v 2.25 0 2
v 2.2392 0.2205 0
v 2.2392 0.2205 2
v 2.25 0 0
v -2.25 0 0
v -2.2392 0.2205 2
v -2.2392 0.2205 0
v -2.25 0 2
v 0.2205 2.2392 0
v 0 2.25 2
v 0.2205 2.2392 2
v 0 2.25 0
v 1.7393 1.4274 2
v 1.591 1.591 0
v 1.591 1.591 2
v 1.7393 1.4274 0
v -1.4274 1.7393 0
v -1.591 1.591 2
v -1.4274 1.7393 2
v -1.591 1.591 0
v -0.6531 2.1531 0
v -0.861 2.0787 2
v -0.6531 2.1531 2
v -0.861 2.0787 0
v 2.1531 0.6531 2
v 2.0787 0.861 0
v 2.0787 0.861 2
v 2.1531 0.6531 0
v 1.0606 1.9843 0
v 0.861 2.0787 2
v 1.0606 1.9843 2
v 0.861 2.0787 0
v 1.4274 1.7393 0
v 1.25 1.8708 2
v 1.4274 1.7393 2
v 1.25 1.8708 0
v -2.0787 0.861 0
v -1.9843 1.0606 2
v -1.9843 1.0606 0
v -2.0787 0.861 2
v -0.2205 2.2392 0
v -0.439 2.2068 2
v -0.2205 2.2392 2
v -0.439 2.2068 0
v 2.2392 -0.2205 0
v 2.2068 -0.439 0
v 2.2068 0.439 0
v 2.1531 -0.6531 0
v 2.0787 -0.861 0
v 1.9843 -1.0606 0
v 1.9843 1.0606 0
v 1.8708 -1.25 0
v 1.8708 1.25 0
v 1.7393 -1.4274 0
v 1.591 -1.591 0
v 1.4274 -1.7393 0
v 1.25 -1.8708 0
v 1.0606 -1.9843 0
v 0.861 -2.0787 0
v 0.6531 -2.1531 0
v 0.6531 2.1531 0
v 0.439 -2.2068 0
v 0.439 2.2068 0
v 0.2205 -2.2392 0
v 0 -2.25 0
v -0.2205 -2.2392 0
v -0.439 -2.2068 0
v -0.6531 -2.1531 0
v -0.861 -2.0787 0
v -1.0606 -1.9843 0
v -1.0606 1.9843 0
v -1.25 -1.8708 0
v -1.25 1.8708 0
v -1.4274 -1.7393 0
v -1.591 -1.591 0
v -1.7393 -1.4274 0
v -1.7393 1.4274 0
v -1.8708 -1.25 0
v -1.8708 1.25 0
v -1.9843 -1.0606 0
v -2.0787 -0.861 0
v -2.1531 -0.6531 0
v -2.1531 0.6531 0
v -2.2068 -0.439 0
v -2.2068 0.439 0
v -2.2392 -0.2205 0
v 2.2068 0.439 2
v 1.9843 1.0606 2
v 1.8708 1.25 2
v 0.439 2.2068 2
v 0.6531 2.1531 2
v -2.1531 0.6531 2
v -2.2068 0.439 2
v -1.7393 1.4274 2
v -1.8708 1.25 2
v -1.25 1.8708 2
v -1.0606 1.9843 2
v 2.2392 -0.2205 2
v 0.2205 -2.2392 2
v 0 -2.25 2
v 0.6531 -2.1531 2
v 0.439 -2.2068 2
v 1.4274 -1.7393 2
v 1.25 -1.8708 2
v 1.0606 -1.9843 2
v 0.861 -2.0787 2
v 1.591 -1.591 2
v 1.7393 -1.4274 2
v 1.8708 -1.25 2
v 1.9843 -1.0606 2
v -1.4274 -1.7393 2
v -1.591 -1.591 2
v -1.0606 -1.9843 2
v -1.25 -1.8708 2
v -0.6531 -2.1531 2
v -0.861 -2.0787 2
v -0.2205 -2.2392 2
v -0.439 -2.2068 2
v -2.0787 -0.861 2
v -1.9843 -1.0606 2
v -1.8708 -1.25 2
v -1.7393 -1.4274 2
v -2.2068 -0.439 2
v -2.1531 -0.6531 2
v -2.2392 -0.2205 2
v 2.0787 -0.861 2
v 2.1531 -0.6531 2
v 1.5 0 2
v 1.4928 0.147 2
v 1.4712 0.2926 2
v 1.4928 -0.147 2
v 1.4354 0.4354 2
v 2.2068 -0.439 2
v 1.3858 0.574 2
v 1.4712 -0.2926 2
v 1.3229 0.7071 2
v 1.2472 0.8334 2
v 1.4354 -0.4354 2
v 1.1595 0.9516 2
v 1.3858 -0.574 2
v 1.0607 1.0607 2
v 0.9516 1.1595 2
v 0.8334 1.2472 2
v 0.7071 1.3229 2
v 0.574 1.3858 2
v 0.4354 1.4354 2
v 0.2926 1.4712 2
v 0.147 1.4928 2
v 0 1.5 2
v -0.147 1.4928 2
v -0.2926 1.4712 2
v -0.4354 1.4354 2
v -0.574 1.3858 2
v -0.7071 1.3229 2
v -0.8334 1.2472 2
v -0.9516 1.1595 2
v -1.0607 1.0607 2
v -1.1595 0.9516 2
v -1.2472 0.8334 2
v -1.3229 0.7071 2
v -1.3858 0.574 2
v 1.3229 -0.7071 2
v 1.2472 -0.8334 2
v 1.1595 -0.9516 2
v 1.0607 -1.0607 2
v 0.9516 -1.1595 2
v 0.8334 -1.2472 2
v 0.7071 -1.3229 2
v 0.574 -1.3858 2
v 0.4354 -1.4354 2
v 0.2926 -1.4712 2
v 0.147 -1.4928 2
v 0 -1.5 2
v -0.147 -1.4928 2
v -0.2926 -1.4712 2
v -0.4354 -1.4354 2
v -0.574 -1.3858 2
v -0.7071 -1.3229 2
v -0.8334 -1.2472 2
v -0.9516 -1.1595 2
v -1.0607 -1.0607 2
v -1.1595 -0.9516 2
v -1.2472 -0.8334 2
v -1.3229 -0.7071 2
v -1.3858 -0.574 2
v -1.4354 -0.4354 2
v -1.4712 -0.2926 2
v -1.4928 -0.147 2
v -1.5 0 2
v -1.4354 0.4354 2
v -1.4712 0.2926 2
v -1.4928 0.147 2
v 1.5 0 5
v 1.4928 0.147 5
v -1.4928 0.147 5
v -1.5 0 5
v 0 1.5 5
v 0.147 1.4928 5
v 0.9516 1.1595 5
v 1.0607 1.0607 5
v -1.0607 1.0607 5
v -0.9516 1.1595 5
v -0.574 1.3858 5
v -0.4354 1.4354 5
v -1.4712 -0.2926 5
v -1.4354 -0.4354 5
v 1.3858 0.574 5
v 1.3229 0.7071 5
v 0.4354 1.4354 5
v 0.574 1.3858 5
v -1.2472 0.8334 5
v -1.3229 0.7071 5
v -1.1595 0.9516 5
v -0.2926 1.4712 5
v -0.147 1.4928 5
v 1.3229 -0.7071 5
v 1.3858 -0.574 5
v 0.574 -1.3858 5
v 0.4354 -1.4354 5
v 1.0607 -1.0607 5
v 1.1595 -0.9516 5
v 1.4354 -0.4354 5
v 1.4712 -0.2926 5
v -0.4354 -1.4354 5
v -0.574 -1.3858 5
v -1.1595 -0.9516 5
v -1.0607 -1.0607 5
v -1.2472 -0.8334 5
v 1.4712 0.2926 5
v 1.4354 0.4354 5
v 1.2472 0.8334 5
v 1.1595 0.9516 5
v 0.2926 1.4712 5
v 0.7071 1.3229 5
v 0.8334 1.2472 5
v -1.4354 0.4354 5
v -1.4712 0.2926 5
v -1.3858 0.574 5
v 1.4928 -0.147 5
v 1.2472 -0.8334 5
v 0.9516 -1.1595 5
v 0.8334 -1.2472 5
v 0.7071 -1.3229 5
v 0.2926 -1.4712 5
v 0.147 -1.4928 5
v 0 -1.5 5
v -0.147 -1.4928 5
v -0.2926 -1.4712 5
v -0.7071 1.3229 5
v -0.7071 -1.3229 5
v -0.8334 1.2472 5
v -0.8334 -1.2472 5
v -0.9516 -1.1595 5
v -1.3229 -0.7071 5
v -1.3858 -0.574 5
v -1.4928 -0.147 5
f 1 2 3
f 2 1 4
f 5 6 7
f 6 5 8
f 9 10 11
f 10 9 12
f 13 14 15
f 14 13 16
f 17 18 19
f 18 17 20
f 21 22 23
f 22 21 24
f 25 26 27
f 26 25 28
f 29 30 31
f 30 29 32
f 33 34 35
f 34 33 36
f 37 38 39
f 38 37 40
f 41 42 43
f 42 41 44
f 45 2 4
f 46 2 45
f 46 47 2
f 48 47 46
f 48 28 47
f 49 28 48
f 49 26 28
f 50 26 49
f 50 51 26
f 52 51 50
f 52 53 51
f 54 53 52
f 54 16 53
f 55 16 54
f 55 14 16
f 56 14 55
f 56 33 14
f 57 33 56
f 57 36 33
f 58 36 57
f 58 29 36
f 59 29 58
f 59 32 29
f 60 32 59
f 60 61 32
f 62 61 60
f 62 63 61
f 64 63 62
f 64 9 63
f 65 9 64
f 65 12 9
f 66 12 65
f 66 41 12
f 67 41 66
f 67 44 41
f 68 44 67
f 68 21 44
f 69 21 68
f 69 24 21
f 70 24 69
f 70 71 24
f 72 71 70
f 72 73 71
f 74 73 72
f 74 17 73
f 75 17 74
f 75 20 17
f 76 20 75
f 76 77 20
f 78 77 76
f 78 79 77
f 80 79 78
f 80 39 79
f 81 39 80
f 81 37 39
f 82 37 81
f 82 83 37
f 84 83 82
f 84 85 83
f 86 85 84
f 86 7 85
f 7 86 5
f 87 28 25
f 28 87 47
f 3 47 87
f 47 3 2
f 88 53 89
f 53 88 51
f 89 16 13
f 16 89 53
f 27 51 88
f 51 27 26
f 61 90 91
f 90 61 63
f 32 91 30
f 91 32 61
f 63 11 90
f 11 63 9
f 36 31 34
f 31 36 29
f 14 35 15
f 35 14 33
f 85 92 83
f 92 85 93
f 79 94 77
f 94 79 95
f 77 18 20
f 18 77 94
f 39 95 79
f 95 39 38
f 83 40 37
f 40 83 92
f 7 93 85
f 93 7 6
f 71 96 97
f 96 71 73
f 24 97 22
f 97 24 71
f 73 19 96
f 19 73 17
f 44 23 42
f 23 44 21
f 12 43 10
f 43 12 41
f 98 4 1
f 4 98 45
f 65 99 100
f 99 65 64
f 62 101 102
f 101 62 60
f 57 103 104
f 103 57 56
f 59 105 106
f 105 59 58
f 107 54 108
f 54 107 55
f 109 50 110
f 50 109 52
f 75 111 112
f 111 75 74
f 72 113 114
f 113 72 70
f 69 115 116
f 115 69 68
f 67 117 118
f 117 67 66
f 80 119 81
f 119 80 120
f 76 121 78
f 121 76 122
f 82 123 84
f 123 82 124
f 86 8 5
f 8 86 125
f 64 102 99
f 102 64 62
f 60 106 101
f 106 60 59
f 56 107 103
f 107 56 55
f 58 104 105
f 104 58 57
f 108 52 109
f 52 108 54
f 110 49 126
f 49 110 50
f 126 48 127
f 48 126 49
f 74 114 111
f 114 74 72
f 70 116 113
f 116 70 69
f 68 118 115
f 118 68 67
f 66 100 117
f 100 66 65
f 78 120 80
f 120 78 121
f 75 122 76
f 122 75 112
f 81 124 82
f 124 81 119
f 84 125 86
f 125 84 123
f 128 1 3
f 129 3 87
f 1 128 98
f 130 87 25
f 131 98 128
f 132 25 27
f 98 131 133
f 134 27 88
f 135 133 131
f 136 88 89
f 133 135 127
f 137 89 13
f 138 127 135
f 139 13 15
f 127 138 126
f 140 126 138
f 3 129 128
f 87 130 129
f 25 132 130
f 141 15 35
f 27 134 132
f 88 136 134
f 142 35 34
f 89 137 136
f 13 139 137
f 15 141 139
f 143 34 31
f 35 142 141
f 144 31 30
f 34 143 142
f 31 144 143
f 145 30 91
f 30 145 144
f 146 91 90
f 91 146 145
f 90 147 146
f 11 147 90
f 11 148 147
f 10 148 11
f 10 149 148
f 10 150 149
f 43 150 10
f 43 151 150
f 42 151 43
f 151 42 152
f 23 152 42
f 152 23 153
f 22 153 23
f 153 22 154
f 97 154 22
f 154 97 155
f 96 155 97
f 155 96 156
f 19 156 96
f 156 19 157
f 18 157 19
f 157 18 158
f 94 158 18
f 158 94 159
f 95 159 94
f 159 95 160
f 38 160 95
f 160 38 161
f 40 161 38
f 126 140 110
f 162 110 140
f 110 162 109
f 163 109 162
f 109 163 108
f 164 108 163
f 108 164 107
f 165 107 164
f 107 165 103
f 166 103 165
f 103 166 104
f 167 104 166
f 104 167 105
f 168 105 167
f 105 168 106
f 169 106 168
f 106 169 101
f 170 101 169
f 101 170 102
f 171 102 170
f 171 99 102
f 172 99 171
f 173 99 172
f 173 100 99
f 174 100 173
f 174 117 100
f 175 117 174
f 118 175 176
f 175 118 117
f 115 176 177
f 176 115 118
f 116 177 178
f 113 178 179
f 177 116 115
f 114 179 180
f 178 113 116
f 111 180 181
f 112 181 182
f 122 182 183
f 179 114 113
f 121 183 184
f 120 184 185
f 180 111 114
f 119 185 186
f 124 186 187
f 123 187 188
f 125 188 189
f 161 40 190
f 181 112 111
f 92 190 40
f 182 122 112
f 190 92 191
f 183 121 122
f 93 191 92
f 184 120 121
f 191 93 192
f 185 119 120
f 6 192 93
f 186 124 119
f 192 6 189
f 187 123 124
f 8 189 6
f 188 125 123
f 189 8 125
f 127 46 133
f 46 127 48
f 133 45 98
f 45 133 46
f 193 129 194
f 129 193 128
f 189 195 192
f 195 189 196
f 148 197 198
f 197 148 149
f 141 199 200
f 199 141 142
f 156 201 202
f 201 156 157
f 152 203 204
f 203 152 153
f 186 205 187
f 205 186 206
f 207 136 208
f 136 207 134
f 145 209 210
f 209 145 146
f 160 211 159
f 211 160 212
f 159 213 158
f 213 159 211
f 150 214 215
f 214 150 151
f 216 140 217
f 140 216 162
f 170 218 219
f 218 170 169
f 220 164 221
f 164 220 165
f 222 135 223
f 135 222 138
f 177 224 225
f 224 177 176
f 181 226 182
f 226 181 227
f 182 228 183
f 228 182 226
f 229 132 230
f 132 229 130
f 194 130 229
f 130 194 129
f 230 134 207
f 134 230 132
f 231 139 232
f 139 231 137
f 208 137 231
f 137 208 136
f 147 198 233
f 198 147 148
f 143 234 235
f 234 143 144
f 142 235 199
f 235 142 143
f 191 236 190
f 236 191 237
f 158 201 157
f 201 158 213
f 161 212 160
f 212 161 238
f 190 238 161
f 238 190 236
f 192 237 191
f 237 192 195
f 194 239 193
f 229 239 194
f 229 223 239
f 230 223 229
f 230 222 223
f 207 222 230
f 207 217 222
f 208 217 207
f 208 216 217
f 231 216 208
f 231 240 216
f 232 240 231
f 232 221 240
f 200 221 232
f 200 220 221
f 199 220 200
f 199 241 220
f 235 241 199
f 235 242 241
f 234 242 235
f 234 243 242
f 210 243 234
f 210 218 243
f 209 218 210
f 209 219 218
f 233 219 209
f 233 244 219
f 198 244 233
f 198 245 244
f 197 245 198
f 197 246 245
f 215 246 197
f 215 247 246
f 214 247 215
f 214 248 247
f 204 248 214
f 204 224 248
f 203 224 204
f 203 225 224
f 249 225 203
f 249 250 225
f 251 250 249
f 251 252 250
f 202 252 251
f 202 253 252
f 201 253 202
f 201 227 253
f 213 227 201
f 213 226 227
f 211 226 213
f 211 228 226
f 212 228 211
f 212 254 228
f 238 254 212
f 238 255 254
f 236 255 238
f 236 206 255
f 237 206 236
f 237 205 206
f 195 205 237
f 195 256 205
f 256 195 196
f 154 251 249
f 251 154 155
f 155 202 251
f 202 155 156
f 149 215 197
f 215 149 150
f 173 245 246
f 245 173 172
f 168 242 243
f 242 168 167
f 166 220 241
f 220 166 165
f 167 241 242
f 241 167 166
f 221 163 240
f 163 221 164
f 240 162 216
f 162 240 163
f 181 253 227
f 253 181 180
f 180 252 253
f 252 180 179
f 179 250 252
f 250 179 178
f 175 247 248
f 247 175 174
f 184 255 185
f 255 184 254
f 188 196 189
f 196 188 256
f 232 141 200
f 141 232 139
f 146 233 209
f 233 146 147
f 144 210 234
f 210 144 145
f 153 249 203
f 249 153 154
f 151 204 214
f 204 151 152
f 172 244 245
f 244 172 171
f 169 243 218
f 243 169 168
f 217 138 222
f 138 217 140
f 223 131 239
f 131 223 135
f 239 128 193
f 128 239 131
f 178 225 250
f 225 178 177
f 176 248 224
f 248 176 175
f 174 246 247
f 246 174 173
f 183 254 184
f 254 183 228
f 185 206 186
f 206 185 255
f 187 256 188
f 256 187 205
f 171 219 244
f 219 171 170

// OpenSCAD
//==============================================================================
// Rail-Lock Plastic Pin
//==============================================================================
// Companion piece to the PCB Holder Long Arm. Sits between the rail-locking
// hand-screw and the rail: the screw presses on the pin head, and the pin's
// shaft tip presses on the rail through the rail base outer wall.
//
// Print orientation: head on the build plate, shaft tip pointing up
// (+Z). Dimensions are nominal — the receiving pocket and shaft hole in
// pcb-holder-long-arm.scad already include their own clearance.
//==============================================================================

//==============================================================================
// 1. PIN DIMENSIONS
//==============================================================================

pin_head_d     = 4.5;   // mm - head diameter
pin_head_thick = 2.0;   // mm - head thickness (axial)
pin_shaft_d    = 3;     // mm - shaft diameter
pin_shaft_len  = 3;     // mm - shaft length (tip-to-head)

//==============================================================================
// 2. RENDER QUALITY
//==============================================================================

$fn = 64;
$fa = 0.5;
$fs = 0.1;

//==============================================================================
// 3. GEOMETRY
//==============================================================================

module rail_lock_pin() {
    // Head rests on the build plate (Z = 0 to head thickness),
    // shaft rises from head's top face up to its tip.
    union() {
        // Head
        cylinder(d = pin_head_d, h = pin_head_thick);
        // Shaft, stacked on top of the head
        translate([0, 0, pin_head_thick])
            cylinder(d = pin_shaft_d, h = pin_shaft_len);
    }
}

rail_lock_pin();
